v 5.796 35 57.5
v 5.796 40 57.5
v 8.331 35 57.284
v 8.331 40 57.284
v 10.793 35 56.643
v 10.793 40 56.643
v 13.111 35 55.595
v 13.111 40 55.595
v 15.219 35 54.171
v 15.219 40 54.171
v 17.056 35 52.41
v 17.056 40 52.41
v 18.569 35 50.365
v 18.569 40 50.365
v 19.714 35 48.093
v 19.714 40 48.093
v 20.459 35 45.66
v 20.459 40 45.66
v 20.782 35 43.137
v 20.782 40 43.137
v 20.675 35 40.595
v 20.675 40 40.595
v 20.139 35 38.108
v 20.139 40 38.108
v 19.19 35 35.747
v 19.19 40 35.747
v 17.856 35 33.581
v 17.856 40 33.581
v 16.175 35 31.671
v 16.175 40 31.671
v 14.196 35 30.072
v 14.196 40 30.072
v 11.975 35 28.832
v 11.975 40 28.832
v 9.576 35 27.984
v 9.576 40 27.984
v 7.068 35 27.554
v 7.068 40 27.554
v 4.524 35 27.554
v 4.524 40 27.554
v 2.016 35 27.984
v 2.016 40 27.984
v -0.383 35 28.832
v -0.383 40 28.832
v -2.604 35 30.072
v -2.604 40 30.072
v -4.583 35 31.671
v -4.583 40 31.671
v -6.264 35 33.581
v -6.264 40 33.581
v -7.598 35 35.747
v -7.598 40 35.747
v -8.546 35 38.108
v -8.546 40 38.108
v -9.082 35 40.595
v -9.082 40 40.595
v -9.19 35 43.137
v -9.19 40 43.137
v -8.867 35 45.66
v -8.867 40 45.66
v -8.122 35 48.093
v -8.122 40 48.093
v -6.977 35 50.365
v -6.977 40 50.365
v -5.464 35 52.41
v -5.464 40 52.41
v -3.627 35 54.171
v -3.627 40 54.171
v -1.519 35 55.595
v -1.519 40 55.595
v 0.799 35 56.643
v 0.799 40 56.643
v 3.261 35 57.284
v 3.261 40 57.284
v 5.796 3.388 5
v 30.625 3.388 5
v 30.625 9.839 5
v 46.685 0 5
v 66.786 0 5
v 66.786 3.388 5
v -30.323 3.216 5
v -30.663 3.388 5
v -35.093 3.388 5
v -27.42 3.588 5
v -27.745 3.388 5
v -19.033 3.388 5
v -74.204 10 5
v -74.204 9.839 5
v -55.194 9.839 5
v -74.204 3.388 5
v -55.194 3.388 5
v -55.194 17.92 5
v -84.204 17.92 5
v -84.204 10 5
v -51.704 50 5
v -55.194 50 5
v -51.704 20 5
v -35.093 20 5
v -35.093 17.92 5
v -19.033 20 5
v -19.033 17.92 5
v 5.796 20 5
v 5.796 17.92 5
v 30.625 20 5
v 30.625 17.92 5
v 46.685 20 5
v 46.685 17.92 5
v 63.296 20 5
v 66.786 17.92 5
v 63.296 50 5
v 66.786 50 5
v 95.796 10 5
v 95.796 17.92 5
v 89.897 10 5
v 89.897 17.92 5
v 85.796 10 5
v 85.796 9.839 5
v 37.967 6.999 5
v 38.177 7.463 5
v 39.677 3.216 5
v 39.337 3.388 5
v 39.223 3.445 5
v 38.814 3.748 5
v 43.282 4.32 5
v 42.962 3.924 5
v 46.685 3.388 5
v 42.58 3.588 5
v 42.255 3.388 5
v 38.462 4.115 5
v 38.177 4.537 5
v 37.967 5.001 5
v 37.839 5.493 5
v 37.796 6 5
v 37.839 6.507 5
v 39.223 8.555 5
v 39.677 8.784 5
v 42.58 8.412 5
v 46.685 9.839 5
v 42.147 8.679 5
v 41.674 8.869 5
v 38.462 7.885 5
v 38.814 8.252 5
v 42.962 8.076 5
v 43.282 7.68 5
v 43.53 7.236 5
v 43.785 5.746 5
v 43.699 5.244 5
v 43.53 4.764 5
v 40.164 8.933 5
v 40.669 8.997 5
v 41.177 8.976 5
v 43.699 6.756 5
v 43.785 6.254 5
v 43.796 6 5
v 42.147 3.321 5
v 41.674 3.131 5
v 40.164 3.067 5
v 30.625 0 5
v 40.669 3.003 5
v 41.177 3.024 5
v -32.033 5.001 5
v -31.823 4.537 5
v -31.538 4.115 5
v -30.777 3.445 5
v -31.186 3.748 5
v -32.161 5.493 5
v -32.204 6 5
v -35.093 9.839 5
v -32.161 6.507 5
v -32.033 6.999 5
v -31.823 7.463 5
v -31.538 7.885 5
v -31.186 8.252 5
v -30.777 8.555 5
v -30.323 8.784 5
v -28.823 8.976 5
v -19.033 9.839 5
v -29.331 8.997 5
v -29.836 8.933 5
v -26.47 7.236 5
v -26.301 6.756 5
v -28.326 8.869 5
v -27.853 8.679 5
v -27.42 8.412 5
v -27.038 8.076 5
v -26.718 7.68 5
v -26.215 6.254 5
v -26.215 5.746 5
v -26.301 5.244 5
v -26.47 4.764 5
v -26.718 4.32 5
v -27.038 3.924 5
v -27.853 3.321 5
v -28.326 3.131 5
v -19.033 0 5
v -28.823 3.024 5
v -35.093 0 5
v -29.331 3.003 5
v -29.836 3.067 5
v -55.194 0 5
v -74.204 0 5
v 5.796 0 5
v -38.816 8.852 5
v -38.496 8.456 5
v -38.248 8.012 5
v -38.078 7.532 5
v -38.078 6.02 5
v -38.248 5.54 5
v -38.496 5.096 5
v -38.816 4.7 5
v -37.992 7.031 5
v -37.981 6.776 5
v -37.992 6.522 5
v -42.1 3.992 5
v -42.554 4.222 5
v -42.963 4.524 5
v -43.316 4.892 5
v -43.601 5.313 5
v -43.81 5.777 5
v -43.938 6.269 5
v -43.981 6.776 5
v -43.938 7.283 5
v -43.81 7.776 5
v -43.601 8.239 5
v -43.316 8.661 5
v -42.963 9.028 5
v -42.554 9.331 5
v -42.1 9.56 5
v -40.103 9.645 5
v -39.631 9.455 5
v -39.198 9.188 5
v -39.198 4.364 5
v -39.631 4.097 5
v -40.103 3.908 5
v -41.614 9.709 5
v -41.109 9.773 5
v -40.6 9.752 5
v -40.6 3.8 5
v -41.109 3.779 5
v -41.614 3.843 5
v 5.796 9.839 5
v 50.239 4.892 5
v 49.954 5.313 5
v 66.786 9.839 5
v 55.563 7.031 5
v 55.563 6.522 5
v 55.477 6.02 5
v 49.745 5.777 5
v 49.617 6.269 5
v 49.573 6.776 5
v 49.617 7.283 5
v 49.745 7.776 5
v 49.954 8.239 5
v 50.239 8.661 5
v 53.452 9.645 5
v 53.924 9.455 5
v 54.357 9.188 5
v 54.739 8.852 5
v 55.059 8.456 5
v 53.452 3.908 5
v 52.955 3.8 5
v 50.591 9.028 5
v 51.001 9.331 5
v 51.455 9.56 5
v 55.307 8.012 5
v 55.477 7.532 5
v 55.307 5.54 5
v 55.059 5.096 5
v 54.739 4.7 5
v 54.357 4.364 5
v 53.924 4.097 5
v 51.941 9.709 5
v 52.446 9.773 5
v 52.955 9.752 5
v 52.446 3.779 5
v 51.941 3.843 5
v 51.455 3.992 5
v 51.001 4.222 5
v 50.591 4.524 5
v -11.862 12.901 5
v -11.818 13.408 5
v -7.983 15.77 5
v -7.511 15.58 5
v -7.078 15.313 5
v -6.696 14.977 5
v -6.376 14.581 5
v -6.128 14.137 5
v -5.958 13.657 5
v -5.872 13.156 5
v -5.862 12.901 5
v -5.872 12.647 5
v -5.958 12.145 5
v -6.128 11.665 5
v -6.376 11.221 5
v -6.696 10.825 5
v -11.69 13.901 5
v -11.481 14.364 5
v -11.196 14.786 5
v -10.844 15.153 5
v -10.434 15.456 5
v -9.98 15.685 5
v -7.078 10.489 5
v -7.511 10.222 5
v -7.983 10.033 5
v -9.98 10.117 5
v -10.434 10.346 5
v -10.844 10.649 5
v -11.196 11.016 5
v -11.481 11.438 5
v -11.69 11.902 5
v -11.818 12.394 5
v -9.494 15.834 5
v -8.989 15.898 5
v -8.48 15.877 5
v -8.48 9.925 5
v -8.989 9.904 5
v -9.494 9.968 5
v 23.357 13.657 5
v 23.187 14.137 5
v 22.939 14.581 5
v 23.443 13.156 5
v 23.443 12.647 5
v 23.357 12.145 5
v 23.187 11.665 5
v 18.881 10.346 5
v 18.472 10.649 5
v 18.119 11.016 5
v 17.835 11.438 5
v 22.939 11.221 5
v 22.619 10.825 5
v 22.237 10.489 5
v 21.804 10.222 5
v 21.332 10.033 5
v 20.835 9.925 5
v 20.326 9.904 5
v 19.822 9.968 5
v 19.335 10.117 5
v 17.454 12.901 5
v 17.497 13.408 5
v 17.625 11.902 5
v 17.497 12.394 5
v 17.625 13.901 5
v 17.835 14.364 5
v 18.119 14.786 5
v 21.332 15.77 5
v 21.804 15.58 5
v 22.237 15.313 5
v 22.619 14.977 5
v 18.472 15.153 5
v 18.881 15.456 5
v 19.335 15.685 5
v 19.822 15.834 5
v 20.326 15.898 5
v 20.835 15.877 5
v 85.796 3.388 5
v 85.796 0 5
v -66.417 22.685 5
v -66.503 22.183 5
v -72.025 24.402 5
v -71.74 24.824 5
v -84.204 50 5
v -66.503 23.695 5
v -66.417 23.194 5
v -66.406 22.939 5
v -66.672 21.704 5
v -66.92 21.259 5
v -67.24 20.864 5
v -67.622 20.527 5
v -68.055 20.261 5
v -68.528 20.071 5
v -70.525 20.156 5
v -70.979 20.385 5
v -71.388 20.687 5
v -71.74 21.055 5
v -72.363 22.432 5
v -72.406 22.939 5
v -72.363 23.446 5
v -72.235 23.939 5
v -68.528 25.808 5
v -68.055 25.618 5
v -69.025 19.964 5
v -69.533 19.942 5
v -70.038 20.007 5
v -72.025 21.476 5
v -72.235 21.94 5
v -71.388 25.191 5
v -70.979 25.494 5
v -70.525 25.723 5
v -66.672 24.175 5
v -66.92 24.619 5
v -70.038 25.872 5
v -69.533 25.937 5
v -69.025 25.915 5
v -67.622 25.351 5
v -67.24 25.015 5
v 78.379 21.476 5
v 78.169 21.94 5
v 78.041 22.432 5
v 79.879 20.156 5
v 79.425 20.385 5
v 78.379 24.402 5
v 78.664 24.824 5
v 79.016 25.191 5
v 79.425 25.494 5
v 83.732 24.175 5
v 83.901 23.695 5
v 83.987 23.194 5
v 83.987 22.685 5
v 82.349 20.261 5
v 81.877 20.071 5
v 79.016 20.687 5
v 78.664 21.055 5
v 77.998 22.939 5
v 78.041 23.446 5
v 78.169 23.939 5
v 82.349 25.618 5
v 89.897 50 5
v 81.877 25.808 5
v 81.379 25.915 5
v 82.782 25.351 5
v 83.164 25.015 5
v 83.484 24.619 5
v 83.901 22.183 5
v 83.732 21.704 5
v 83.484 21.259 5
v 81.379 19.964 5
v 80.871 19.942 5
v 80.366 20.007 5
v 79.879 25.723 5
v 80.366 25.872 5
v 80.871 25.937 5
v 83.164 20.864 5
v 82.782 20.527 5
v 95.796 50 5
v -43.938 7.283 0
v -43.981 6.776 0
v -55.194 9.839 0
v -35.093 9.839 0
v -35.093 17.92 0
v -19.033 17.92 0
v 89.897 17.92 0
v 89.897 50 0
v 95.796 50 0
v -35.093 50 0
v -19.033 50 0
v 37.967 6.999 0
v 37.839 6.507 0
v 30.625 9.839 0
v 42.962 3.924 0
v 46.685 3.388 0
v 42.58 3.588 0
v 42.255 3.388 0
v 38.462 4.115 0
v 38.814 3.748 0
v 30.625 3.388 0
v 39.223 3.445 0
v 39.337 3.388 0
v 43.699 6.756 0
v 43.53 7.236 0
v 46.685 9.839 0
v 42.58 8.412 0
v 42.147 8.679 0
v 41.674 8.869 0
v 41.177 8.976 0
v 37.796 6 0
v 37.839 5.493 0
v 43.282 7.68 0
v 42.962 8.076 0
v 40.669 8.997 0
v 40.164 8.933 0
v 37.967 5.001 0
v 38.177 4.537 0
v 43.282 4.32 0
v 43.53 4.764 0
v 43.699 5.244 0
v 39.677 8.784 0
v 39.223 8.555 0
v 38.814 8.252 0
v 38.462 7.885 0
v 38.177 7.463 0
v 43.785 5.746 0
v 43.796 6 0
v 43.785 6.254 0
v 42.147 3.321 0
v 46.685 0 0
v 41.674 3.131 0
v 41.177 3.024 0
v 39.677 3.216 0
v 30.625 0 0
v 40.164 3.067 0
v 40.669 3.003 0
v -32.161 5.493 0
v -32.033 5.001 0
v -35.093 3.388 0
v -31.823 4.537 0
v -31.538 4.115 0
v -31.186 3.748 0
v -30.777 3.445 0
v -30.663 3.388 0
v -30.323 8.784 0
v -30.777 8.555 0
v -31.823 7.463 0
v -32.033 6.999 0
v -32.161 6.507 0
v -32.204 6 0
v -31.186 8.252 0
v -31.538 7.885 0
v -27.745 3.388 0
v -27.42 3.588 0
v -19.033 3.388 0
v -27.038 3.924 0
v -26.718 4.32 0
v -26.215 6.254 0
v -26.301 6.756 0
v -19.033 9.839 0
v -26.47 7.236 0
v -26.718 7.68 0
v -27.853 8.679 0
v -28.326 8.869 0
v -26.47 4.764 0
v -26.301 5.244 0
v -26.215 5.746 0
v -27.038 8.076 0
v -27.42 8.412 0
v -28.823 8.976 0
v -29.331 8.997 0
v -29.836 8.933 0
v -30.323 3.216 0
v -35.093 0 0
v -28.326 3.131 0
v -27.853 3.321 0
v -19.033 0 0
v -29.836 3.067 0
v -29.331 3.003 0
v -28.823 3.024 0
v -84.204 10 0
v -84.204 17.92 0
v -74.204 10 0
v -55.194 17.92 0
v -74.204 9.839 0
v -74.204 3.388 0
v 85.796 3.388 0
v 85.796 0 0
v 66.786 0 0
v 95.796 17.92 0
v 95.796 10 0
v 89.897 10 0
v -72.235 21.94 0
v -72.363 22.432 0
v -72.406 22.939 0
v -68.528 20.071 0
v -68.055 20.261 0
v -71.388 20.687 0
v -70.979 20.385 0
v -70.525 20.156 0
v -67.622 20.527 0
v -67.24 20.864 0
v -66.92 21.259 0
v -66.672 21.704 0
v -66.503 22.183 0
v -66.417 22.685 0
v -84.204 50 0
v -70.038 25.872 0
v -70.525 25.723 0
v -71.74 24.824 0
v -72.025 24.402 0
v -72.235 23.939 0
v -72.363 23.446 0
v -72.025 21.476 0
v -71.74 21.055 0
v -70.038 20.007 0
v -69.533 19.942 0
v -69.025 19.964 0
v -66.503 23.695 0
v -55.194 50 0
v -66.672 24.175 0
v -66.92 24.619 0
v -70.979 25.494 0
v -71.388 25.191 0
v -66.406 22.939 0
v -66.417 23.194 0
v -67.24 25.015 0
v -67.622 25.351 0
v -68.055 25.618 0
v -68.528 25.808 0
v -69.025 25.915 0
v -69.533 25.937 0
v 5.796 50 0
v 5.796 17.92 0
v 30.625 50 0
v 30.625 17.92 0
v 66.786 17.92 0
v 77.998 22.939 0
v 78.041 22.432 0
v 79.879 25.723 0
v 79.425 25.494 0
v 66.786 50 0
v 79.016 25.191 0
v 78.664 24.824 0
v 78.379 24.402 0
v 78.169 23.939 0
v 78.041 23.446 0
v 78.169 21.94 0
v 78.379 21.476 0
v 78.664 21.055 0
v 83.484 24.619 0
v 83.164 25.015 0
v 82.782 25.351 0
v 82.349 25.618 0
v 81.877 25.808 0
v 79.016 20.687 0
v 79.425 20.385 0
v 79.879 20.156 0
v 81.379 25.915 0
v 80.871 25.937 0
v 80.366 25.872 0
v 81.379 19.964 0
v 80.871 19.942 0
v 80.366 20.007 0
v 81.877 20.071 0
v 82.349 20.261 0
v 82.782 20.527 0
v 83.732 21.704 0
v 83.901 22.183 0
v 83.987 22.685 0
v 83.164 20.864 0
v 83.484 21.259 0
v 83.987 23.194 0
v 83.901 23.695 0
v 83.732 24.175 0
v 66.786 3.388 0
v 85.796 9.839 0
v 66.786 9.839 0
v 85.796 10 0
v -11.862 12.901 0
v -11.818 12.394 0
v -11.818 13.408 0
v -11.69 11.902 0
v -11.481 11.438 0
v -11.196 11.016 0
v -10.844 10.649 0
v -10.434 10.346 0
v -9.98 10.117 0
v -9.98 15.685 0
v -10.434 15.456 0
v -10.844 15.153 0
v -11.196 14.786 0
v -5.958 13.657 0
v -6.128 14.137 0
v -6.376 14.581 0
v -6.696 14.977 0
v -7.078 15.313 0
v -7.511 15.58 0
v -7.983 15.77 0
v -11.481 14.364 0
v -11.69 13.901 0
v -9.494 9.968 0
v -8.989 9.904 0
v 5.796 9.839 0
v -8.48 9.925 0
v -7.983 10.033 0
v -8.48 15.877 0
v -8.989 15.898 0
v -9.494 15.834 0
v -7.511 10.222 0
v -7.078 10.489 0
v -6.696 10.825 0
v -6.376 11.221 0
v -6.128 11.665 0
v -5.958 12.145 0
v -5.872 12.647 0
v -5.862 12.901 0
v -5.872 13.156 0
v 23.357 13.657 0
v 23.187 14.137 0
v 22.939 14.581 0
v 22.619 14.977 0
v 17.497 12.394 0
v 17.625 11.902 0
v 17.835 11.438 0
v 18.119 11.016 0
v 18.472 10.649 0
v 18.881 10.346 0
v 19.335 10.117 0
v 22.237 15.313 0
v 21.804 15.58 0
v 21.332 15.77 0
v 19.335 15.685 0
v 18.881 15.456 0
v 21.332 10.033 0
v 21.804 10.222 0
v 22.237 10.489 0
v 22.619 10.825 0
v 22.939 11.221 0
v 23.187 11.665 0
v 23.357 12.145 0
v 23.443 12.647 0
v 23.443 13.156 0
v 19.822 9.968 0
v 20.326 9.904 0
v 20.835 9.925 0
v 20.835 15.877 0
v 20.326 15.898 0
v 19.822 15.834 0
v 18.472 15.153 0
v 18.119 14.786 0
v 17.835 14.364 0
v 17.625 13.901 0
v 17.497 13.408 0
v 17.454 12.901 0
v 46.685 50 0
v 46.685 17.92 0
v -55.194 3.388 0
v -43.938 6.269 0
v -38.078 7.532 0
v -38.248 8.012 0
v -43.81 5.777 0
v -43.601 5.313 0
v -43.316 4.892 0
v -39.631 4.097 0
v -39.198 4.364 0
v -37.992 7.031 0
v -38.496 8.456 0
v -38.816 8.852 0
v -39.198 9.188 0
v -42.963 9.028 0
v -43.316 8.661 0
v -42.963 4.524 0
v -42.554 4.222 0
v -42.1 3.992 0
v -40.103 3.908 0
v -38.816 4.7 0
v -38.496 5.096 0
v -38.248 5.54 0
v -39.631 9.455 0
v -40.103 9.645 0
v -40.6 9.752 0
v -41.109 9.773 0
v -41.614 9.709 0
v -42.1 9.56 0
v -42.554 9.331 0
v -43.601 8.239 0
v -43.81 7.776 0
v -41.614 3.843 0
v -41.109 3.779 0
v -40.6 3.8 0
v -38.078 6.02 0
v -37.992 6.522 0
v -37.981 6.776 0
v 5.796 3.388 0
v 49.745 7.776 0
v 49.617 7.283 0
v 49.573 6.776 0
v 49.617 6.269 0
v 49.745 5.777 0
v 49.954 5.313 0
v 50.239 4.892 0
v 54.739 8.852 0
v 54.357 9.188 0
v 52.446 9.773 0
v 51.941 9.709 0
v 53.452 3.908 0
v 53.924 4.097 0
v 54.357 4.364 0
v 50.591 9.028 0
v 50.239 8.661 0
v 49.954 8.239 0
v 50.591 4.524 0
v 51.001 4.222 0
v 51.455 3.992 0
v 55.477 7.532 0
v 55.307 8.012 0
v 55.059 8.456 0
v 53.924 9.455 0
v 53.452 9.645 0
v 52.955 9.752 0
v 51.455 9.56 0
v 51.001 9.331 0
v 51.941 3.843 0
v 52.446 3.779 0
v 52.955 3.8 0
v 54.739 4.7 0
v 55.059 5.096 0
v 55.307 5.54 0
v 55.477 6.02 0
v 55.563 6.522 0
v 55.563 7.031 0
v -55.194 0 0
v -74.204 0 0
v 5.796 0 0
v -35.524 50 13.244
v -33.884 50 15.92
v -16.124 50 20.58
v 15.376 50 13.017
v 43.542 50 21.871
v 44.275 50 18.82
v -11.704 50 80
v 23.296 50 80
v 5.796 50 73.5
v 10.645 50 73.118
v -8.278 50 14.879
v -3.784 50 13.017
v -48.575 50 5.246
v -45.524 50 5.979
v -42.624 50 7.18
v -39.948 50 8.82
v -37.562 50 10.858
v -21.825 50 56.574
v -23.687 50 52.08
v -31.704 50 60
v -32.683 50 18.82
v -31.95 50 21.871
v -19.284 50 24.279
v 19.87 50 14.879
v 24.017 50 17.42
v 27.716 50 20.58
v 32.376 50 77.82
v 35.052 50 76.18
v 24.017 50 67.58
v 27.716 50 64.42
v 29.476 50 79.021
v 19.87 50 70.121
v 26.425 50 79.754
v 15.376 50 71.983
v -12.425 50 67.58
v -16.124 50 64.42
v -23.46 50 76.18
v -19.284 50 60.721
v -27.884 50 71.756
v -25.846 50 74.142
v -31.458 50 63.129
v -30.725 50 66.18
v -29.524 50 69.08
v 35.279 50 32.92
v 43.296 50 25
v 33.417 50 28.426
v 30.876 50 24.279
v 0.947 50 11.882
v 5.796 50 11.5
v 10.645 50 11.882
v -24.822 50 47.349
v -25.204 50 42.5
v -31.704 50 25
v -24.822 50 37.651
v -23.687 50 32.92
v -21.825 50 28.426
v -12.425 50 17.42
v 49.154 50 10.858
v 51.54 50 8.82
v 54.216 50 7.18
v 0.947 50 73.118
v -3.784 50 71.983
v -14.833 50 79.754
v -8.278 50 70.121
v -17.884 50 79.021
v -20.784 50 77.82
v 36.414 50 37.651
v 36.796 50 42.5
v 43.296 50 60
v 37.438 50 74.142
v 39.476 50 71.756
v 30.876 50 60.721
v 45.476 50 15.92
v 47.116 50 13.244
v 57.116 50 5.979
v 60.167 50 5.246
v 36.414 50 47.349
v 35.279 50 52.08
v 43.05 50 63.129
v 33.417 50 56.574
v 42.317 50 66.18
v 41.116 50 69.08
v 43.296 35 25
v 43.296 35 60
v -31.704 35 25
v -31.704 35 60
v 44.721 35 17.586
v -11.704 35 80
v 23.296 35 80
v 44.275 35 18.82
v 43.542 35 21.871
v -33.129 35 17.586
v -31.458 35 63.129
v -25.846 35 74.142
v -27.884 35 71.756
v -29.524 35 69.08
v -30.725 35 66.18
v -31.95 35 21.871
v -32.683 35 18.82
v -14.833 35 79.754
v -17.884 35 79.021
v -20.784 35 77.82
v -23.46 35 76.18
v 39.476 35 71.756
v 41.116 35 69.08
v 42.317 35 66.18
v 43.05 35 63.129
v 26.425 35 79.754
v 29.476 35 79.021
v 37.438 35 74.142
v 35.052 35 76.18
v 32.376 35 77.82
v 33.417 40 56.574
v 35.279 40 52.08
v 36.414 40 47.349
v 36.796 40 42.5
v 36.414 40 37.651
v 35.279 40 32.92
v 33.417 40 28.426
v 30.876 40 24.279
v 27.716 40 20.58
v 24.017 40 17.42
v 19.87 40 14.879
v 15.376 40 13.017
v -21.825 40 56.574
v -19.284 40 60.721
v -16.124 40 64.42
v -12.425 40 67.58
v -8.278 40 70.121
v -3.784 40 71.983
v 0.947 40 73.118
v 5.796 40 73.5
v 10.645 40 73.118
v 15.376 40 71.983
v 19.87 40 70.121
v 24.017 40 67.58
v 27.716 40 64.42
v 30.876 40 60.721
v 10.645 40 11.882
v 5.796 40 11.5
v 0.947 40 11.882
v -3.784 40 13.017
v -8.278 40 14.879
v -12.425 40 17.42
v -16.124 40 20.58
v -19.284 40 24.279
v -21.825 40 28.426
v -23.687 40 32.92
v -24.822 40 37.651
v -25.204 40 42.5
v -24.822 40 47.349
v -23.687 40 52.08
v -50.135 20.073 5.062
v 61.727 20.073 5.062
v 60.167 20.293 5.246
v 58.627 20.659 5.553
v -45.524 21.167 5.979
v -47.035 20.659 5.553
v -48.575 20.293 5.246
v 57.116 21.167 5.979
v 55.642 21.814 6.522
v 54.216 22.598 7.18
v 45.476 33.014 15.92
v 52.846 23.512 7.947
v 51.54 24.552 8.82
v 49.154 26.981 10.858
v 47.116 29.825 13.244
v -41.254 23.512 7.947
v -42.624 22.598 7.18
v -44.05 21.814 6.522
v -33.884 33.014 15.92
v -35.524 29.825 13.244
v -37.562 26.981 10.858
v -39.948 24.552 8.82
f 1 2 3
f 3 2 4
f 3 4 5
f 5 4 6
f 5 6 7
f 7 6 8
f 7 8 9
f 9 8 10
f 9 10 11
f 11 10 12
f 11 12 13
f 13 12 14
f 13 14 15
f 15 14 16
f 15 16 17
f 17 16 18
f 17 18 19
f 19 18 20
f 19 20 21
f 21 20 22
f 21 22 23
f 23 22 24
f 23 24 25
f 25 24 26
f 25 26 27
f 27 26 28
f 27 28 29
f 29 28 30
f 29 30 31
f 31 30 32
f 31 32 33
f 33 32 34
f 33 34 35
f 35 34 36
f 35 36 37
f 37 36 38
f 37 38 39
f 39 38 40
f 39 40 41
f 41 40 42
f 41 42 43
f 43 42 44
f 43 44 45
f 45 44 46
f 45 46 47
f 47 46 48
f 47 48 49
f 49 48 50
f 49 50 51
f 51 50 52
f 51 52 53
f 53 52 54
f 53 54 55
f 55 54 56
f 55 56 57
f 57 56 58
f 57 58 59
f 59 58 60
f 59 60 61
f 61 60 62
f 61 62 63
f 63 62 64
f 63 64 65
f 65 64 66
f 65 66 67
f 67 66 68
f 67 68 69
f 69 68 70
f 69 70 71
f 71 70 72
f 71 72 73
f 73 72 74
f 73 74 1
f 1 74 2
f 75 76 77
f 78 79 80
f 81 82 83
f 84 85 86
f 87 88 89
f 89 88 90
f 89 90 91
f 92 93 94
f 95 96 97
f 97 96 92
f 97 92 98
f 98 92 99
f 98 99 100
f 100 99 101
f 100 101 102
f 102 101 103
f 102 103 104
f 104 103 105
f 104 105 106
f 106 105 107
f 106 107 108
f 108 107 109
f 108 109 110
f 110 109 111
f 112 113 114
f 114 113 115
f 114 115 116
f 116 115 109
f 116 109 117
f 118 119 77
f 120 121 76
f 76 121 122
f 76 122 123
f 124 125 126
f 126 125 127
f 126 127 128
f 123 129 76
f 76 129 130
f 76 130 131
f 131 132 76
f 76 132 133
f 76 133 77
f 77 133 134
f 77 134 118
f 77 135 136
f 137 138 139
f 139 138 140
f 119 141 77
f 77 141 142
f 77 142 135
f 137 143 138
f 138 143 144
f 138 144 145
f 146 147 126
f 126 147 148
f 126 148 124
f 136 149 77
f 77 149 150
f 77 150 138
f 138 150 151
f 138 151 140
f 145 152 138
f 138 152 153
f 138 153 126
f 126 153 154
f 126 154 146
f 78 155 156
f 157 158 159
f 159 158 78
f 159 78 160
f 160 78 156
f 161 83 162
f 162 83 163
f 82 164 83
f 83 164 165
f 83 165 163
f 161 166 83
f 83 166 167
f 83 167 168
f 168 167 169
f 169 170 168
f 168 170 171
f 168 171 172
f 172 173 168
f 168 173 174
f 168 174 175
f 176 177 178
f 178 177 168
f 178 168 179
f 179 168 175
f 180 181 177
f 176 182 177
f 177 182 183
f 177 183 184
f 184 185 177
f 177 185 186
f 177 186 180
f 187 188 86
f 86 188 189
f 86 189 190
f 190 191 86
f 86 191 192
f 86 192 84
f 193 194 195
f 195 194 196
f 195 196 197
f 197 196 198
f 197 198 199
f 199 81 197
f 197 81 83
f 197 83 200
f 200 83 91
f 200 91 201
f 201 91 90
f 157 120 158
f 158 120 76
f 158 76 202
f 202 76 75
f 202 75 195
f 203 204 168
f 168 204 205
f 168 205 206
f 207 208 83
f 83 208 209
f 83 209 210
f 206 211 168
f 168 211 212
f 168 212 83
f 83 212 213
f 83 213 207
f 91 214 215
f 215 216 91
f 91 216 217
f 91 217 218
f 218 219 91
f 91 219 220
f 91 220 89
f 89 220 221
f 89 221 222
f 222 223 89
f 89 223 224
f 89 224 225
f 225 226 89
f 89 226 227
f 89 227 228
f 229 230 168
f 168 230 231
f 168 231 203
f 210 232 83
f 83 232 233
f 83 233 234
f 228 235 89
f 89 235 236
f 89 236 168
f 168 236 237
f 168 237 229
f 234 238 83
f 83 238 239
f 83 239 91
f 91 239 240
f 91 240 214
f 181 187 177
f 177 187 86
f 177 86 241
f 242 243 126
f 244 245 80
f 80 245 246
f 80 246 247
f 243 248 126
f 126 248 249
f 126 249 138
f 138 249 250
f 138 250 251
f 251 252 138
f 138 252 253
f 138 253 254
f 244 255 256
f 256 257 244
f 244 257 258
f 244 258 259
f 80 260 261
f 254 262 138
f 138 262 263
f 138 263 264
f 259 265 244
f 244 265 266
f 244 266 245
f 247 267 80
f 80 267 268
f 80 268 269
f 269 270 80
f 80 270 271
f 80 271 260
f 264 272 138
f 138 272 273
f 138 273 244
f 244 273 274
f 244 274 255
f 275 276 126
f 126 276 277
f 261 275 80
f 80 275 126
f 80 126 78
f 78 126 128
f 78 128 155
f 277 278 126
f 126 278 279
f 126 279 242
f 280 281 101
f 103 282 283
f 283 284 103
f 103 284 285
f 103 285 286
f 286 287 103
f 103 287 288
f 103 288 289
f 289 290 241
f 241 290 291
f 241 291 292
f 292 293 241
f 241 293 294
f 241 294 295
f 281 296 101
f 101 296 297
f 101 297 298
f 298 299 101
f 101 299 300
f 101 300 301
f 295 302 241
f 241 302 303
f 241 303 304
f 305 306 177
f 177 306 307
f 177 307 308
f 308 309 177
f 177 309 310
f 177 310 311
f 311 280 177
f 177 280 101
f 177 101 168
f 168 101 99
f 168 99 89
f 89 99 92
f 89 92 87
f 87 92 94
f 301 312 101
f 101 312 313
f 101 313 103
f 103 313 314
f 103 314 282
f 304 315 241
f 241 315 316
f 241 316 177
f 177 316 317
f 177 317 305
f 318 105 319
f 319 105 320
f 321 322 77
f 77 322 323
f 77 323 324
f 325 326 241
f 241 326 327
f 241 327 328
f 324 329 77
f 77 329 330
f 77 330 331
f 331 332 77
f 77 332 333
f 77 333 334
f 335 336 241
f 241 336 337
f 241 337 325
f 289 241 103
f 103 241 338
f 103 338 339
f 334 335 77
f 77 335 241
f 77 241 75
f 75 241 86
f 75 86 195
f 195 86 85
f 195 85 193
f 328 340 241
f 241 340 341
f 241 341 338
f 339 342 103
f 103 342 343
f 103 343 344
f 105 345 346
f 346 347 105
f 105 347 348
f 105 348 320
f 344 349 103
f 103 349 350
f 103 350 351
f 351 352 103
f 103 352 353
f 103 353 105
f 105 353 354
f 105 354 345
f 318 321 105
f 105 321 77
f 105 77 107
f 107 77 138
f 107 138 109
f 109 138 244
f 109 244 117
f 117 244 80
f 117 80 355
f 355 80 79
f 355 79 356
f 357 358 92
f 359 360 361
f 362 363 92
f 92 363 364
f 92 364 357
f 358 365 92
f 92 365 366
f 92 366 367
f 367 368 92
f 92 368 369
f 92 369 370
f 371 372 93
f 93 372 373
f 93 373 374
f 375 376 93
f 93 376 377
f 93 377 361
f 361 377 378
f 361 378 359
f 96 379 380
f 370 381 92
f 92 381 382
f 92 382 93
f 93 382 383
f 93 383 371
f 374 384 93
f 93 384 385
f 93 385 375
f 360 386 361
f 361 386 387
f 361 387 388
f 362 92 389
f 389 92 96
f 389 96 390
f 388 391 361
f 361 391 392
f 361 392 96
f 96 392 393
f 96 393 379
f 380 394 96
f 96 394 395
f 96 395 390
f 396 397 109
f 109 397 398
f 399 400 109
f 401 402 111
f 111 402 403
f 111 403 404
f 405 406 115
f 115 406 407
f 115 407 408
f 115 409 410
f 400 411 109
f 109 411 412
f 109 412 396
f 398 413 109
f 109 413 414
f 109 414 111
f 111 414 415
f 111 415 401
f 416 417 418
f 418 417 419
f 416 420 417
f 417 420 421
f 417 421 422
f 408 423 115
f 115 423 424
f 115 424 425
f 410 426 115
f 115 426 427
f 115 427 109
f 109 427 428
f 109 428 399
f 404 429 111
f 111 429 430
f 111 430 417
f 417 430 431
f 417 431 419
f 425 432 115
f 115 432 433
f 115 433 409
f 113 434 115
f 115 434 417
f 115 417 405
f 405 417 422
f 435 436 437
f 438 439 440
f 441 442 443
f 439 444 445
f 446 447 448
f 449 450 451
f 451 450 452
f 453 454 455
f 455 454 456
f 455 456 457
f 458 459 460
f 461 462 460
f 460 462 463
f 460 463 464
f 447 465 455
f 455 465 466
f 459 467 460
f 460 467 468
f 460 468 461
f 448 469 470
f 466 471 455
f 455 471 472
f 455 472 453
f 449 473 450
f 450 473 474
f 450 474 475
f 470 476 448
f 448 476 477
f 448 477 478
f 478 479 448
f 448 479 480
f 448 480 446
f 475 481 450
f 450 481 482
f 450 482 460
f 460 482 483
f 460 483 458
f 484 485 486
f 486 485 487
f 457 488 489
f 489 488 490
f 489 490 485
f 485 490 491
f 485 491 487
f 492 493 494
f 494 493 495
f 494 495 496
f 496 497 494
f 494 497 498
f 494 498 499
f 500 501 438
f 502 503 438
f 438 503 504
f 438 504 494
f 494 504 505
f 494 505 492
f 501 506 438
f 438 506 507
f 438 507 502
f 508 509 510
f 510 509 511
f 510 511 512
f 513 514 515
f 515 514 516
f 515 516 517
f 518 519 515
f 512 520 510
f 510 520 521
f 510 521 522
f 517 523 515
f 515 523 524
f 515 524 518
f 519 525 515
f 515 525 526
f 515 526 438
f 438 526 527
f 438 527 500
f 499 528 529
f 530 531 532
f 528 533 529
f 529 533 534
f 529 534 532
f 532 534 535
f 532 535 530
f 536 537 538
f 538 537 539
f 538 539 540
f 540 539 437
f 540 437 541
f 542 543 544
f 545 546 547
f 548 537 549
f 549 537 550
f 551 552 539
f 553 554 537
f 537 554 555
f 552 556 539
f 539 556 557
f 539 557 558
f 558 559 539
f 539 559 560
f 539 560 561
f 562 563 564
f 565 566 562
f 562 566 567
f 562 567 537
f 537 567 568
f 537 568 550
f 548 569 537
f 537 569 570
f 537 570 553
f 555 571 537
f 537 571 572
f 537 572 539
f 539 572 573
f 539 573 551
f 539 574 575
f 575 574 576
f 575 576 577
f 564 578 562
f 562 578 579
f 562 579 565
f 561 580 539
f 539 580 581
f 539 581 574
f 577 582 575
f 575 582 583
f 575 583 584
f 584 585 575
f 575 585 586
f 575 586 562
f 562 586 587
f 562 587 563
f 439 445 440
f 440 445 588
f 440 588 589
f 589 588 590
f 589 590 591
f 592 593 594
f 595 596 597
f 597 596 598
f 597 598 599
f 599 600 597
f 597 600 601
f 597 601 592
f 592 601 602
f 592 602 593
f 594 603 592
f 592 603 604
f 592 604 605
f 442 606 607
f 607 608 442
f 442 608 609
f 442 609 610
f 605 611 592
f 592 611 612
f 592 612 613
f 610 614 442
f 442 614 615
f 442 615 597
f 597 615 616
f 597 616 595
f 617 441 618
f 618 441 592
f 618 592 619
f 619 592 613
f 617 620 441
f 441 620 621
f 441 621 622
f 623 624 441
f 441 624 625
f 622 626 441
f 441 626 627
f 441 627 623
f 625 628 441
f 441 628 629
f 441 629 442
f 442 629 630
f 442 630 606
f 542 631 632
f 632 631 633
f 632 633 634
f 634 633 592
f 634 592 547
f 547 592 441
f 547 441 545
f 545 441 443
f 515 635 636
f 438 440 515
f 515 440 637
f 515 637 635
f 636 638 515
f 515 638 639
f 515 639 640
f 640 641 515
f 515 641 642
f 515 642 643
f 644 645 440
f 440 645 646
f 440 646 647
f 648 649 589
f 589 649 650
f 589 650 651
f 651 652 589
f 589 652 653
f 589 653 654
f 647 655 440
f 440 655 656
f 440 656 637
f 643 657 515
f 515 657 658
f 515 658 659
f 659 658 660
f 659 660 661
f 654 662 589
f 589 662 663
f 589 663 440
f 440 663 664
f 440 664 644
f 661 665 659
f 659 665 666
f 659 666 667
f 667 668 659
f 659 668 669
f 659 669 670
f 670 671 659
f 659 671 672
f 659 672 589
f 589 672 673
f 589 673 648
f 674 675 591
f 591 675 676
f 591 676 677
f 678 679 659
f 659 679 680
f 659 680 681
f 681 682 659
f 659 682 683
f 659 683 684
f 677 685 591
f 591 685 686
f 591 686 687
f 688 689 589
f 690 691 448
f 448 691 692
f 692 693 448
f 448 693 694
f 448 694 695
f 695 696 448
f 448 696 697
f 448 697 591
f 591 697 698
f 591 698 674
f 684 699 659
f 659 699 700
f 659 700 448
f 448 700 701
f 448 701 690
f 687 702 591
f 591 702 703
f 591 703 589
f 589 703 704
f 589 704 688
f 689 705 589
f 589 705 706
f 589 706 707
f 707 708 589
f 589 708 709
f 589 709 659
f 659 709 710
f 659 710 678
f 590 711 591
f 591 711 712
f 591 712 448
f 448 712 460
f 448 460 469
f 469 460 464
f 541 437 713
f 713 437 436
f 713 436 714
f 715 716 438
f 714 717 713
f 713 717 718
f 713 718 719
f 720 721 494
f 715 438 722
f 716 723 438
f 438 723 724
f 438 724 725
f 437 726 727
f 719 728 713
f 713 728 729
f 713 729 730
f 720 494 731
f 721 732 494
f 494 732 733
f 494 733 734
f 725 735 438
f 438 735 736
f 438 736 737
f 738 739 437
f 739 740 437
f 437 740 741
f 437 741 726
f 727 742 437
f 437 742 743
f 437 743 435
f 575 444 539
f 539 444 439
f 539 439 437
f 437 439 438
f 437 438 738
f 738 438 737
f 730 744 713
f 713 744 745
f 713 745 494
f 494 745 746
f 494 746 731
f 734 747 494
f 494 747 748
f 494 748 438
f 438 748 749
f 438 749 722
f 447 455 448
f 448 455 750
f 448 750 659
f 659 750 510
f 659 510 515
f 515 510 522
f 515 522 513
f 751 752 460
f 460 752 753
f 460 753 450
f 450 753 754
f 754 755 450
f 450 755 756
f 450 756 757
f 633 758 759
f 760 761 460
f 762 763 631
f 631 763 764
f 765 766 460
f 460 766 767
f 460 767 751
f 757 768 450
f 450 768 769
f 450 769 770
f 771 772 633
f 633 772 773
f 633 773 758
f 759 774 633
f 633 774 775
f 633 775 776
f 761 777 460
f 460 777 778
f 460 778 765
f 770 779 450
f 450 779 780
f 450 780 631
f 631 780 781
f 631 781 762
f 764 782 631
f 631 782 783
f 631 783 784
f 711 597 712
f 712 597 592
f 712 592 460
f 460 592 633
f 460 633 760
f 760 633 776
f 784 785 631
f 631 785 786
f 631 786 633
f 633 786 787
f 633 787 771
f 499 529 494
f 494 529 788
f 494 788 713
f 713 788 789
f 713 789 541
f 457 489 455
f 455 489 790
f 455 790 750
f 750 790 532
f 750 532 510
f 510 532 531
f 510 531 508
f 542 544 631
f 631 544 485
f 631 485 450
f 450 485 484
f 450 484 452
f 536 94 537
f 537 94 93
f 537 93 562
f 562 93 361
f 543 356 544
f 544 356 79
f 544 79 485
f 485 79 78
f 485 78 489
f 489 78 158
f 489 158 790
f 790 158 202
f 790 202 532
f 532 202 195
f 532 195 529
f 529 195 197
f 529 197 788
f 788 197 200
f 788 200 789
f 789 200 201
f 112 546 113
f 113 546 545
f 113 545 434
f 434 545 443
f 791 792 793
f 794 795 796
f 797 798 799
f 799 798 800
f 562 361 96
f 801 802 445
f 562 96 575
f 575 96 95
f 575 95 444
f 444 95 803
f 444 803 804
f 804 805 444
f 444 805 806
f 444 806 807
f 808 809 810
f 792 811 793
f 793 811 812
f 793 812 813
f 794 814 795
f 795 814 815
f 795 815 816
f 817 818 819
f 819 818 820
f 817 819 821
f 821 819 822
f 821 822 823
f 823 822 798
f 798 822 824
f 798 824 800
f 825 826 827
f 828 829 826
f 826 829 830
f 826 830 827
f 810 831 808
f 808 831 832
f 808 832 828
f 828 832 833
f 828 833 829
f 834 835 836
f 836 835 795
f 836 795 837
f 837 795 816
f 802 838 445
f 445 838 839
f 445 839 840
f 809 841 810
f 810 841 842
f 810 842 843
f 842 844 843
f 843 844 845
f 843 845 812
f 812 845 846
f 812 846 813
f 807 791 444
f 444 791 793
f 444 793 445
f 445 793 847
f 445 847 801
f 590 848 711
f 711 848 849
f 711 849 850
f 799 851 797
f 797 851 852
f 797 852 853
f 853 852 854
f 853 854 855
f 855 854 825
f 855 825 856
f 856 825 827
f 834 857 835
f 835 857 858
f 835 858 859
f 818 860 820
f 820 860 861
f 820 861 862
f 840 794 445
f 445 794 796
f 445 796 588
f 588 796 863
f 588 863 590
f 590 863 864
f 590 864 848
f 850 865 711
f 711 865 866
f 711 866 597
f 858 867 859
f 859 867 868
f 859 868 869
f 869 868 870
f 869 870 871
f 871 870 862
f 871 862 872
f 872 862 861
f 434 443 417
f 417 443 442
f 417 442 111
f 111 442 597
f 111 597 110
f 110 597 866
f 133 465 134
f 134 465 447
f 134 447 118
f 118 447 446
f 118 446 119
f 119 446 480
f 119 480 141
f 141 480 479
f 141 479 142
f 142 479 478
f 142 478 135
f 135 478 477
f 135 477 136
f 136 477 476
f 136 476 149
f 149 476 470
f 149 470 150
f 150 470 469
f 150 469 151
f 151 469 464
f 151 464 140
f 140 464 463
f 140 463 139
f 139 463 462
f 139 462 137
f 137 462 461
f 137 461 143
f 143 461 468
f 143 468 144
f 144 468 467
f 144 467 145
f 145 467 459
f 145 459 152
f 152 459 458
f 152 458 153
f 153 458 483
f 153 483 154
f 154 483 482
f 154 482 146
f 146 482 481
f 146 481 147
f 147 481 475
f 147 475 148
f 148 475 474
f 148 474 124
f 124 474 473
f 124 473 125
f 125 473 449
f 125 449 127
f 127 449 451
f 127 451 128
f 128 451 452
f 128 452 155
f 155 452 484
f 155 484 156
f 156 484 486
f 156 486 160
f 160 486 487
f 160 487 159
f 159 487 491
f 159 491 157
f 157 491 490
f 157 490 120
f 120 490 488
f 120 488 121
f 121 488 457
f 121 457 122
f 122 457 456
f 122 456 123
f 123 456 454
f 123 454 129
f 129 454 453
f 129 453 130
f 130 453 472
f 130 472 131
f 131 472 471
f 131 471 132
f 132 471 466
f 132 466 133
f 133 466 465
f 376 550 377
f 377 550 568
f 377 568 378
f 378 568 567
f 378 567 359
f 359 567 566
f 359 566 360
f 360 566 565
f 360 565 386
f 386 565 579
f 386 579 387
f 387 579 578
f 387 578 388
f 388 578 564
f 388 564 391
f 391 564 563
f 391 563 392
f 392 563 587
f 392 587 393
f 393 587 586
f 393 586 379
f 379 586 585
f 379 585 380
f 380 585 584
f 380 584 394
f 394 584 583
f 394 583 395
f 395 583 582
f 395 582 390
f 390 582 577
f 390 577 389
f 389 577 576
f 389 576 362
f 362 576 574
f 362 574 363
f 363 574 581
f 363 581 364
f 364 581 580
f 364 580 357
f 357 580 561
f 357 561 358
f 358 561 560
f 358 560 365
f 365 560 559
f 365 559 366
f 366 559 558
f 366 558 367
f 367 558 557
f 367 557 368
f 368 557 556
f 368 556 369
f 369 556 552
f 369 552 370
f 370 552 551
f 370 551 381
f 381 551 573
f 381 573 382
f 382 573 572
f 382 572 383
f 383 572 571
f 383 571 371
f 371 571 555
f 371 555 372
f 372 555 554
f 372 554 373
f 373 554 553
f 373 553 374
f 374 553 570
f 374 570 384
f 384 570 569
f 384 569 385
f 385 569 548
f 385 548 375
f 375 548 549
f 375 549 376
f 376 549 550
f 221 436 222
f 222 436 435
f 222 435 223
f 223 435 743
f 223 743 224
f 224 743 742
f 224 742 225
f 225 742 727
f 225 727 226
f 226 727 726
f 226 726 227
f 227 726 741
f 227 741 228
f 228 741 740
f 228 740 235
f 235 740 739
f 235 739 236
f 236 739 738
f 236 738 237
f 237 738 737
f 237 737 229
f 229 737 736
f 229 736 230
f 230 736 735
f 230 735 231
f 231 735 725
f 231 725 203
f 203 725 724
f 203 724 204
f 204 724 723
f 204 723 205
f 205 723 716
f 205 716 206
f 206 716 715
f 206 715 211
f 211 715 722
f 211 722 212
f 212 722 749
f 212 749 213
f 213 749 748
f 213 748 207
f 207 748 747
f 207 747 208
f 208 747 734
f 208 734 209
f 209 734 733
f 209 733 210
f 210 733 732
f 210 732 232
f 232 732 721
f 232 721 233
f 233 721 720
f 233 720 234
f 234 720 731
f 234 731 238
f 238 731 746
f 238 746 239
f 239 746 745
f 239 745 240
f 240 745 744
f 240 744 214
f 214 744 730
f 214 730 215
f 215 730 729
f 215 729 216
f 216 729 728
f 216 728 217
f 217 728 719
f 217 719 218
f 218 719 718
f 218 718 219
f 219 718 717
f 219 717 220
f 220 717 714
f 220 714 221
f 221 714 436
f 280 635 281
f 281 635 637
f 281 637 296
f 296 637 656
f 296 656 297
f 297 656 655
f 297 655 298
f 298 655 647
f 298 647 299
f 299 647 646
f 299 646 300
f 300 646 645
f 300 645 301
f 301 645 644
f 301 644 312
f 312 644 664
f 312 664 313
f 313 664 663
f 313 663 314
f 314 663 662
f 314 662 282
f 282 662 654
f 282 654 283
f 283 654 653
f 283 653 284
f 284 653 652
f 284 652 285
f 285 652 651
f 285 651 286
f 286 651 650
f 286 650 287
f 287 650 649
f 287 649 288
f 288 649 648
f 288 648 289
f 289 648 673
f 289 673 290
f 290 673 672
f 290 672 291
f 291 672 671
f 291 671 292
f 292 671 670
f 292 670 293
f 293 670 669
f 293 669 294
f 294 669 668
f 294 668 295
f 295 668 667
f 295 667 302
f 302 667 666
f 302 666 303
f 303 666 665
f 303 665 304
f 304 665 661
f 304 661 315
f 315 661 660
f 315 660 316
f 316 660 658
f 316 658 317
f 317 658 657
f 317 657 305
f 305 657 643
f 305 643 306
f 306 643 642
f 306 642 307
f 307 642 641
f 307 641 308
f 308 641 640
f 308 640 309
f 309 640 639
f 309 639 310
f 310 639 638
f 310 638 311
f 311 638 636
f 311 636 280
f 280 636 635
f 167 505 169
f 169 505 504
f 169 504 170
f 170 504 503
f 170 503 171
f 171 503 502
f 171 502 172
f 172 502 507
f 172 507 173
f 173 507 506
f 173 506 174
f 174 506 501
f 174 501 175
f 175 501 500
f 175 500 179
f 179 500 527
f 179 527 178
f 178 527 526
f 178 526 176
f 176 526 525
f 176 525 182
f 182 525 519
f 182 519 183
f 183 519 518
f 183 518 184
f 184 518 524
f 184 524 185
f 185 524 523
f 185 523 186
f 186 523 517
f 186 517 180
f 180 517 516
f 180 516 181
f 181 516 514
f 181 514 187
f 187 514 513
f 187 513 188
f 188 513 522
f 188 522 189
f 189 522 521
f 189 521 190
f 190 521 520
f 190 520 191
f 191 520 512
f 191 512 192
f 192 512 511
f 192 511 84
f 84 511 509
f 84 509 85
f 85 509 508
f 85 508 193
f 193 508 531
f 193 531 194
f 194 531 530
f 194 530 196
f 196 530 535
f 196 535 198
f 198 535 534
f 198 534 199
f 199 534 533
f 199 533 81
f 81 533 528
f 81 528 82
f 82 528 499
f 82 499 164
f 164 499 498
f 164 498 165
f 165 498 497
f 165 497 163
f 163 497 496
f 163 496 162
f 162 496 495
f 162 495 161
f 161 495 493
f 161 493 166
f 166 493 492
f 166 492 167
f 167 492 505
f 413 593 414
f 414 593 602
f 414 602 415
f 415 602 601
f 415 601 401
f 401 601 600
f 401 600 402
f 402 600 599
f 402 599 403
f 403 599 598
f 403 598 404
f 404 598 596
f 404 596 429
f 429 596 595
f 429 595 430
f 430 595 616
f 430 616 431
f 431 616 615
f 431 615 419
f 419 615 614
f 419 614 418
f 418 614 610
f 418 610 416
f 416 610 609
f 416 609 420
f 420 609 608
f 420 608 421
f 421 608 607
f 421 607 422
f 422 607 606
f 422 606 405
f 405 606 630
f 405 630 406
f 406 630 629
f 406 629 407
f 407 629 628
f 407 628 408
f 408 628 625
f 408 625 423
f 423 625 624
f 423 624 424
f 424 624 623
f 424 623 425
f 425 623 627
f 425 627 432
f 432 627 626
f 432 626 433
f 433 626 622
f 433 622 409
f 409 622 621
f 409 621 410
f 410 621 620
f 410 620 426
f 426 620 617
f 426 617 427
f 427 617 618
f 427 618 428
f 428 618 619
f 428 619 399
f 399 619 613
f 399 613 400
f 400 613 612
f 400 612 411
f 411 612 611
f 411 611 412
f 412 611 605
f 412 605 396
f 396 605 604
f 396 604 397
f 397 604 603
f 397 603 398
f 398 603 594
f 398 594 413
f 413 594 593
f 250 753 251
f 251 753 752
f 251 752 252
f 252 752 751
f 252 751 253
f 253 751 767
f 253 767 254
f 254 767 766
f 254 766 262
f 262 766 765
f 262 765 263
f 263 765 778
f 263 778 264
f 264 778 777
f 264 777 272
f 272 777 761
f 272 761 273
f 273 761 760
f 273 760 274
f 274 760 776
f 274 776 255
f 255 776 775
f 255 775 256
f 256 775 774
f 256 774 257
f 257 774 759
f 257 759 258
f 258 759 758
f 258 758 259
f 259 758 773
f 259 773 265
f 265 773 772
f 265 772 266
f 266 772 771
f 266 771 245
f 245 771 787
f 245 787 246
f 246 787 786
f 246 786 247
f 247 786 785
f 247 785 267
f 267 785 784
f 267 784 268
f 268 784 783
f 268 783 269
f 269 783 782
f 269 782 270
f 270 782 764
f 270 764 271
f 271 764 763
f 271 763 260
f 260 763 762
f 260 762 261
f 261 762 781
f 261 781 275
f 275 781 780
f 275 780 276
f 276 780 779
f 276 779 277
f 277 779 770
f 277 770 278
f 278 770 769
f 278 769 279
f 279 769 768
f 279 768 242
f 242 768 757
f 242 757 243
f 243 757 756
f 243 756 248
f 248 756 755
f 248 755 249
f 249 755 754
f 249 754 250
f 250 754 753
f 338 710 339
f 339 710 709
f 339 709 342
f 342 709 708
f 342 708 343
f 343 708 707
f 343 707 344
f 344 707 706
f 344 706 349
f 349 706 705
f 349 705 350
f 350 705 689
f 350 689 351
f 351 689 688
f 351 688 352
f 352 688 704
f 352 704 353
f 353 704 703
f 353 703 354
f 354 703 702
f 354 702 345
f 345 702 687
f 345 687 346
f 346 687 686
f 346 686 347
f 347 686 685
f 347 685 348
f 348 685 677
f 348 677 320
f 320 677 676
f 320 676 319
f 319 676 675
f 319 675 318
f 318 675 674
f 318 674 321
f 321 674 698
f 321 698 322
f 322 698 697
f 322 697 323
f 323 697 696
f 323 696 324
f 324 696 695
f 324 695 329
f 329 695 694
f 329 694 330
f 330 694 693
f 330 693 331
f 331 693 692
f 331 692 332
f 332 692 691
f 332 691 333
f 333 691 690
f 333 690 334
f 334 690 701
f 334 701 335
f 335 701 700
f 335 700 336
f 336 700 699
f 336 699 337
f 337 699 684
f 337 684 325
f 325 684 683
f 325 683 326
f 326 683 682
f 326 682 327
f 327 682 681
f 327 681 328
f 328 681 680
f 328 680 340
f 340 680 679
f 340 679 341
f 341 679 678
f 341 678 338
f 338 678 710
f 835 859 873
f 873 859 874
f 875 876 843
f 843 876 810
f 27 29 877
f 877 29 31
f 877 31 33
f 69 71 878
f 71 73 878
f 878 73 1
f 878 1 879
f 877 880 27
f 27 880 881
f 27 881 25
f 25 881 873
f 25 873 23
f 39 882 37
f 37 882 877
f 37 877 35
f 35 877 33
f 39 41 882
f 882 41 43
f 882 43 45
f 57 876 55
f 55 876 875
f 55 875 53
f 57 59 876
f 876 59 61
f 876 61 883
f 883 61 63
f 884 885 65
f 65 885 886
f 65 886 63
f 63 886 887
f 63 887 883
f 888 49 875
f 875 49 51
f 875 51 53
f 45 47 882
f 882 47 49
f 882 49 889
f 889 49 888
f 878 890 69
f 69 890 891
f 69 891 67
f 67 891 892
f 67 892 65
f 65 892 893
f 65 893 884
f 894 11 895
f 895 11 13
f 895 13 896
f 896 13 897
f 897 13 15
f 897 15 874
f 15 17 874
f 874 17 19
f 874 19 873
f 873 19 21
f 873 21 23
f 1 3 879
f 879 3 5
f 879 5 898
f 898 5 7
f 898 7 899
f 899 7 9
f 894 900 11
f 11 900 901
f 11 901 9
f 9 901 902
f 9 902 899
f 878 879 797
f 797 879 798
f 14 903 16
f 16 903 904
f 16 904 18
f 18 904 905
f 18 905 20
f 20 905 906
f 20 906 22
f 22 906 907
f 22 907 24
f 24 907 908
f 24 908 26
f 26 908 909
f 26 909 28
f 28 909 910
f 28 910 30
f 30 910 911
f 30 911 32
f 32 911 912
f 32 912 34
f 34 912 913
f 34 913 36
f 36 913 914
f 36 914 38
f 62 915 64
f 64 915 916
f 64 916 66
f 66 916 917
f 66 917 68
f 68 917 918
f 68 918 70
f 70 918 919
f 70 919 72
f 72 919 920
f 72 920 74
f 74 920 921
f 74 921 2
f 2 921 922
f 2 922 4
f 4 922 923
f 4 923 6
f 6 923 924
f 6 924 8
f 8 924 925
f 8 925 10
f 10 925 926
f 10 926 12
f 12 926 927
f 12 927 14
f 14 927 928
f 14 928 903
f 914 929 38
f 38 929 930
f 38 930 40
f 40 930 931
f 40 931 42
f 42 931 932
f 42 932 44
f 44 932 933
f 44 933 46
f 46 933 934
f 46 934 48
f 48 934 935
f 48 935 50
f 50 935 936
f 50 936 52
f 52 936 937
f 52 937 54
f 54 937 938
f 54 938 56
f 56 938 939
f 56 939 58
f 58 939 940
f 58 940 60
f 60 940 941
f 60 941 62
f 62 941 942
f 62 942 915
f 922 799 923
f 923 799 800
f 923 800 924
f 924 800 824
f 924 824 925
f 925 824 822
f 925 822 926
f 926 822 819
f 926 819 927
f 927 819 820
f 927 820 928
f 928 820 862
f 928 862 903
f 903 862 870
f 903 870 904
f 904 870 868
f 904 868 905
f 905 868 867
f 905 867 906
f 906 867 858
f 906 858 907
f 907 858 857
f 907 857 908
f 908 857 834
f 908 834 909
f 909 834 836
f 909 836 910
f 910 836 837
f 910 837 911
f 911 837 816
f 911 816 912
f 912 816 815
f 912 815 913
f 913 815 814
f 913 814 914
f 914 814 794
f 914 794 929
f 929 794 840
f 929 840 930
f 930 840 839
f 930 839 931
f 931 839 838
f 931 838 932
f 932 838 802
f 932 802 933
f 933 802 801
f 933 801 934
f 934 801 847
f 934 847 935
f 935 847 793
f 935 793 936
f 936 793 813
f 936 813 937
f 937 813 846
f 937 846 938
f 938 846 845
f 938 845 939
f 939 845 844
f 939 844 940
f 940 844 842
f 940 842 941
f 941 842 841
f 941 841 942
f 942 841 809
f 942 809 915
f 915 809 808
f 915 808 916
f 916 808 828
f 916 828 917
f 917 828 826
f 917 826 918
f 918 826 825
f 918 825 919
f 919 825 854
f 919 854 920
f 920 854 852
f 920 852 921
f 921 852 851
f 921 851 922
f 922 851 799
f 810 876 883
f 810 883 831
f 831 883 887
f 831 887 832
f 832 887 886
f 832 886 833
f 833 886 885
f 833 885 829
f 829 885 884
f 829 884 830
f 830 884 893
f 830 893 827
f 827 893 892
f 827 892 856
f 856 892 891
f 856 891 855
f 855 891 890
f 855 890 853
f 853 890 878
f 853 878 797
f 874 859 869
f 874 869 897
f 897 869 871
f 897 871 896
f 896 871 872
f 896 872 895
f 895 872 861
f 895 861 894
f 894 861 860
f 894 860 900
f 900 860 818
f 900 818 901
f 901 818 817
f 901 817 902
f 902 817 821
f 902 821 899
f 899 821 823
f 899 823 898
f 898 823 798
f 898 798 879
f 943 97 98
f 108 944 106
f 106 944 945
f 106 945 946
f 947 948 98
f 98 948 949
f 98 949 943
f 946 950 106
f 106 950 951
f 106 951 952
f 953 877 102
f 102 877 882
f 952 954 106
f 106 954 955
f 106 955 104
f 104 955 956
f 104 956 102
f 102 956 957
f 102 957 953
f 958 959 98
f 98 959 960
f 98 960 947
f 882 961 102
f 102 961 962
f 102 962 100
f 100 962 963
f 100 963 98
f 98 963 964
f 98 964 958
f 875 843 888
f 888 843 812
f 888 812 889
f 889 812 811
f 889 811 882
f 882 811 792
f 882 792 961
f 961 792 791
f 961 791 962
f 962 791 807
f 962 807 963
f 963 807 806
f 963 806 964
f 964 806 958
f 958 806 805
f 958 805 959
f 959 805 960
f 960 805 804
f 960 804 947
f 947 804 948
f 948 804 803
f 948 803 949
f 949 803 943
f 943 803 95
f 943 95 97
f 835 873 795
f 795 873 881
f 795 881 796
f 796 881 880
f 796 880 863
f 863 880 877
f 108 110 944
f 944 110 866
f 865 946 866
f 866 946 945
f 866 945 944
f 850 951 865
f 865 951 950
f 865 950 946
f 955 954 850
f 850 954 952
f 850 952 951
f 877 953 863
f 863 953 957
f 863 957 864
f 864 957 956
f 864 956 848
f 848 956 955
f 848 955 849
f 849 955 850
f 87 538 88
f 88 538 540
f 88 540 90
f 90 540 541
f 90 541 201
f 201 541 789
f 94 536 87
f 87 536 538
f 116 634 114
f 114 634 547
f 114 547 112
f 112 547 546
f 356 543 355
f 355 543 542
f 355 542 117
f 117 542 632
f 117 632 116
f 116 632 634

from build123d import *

# Parameters (mm, degrees)
ESQUISSE1_W             = 180
ESQUISSE1_H             = 50
ESQUISSE1_R             = 3
BOSS_EXTRU_1_DEPTH      = 5
ESQUISSE2_W             = 75
ESQUISSE2_H             = 15
BOSS_EXTRU_2_DEPTH      = 75
ESQUISSE3_R             = 15
ENL_V_MAT_EXTRU_1_DEPTH = 15
ESQUISSE4_R             = 31
ENL_V_MAT_EXTRU_2_DEPTH = 10
CONG_1_R                = 20
CHANFREIN1_SIZE         = 15
CHANFREIN1_SIZE2        = 12.586494468
CONG_2_R                = 20
ESQUISSE5_W             = 10
ESQUISSE5_H             = 10
ENL_V_MAT_EXTRU_3_DEPTH = 5


with BuildPart() as part:
    # Esquisse1 → Boss.-Extru.1 (new body)
    with BuildSketch(Plane.XY):
        with Locations((5.796013405, 25)):
            Rectangle(ESQUISSE1_W, ESQUISSE1_H)
        with Locations((40.796013405, 6)):
            Circle(ESQUISSE1_R, mode=Mode.SUBTRACT)
        with Locations((-69.406004871, 22.939397164)):
            Circle(ESQUISSE1_R, mode=Mode.SUBTRACT)
        with Locations((-40.981469067, 6.77616521)):
            Circle(ESQUISSE1_R, mode=Mode.SUBTRACT)
        with Locations((-8.861542866, 12.901085106)):
            Circle(ESQUISSE1_R, mode=Mode.SUBTRACT)
        with Locations(Location((-29.203986595, 6, 0), (0, 0, 180))):
            Circle(ESQUISSE1_R, mode=Mode.SUBTRACT)
        with Locations(Location((80.99803168, 22.939397164, 0), (0, 0, 180))):
            Circle(ESQUISSE1_R, mode=Mode.SUBTRACT)
        with Locations(Location((52.573495876, 6.77616521, 0), (0, 0, 180))):
            Circle(ESQUISSE1_R, mode=Mode.SUBTRACT)
        with Locations(Location((20.453569676, 12.901085106, 0), (0, 0, 180))):
            Circle(ESQUISSE1_R, mode=Mode.SUBTRACT)
    extrude(amount=BOSS_EXTRU_1_DEPTH)

    # Esquisse2 → Boss.-Extru.2 (add)
    with BuildSketch(Plane.XY.offset(5)):
        with Locations((5.796013405, 42.5)):
            Rectangle(ESQUISSE2_W, ESQUISSE2_H)
    extrude(amount=BOSS_EXTRU_2_DEPTH)

    # Esquisse3 → Enlèv. mat.-Extru.1 (cut)
    with BuildSketch(Plane(origin=(0, 50, 0), x_dir=(1, 0, 0), z_dir=(0, 1, 0))):
        with Locations(Location((5.796013405, -42.5, 0), (0, 0, 270))):
            Circle(ESQUISSE3_R)
    extrude(amount=-ENL_V_MAT_EXTRU_1_DEPTH, mode=Mode.SUBTRACT)

    # Esquisse4 → Enlèv. mat.-Extru.2 (cut)
    with BuildSketch(Plane(origin=(0, 50, 0), x_dir=(1, 0, 0), z_dir=(0, 1, 0))):
        with Locations(Location((5.796013405, -42.5, 0), (0, 0, 270))):
            Circle(ESQUISSE4_R)
    extrude(amount=-ENL_V_MAT_EXTRU_2_DEPTH, mode=Mode.SUBTRACT)

    # Congé1
    cong_1_edges = [part.edges().sort_by_distance(p)[0] for p in [
        (43.296013405, 42.5, 80),
        (-31.703986595, 42.5, 80),
    ]]
    fillet(cong_1_edges, radius=CONG_1_R)

    # Chanfrein1
    chanfrein1_edges = [part.edges().sort_by_distance(p)[0] for p in [
        (5.796013405, 35, 5),
    ]]
    chanfrein1_side = [part.faces().sort_by_distance(p)[0] for p in [
        (5.796013405, 22.805952806, 5),
    ]]
    chamfer(chanfrein1_edges, length=CHANFREIN1_SIZE, length2=CHANFREIN1_SIZE2, reference=chanfrein1_side[0])

    # Congé2
    # the kernel refuses this fillet: 20 mm, written as the material it adds along each edge
    with BuildSketch(Plane(origin=(-31.703986595, -30, 5), x_dir=(0, 0, 1), z_dir=(0, 1, 0))) as cong_2_piece_1_section:
        with BuildLine():
            CenterArc((CONG_2_R, -CONG_2_R), CONG_2_R, 90, 90)
            Line((0, -CONG_2_R), (0, 0))
            Line((0, 0), (CONG_2_R, 0))
        make_face()
    cong_2_piece_1 = extrude(amount=80, mode=Mode.PRIVATE)
    cong_2_piece_1 = split(cong_2_piece_1, bisect_by=Plane(origin=(-37.472324852, 26.525505275, 10.475549069), z_dir=(0, 0.6427876096865406, -0.766044443118977)), keep=Keep.TOP, mode=Mode.PRIVATE)
    cong_2_piece_1 = split(cong_2_piece_1, bisect_by=Plane(origin=(-37.472324852, 35, 7.522714945), z_dir=(0, -1, 0)), keep=Keep.TOP, mode=Mode.PRIVATE)
    add(cong_2_piece_1)
    with BuildSketch(Plane(origin=(-31.703986595, -30, 5), x_dir=(0, 0, 1), z_dir=(0, 1, 0))) as cong_2_piece_2_section:
        with BuildLine():
            CenterArc((CONG_2_R, -CONG_2_R), CONG_2_R, 90, 90)
            Line((0, -CONG_2_R), (0, 0))
            Line((0, 0), (CONG_2_R, 0))
        make_face()
    cong_2_piece_2 = extrude(amount=80, mode=Mode.PRIVATE)
    cong_2_piece_2 = split(cong_2_piece_2, bisect_by=Plane(origin=(-31.680860217, 38.546515029, 20.562373921), z_dir=(0, -0.6427876096865406, 0.766044443118977)), keep=Keep.TOP, mode=Mode.PRIVATE)
    cong_2_piece_2 = split(cong_2_piece_2, bisect_by=Plane(origin=(-31.680860217, 35, 21.798113742), z_dir=(0, 1, 0)), keep=Keep.TOP, mode=Mode.PRIVATE)
    add(cong_2_piece_2)
    with BuildSketch(Plane(origin=(-31.703986595, -30, 5), x_dir=(0, 0, 1), z_dir=(0, 1, 0))) as cong_2_piece_3_section:
        with BuildLine():
            CenterArc((CONG_2_R, -CONG_2_R), CONG_2_R, 90, 90)
            Line((0, -CONG_2_R), (0, 0))
            Line((0, 0), (CONG_2_R, 0))
        make_face()
    cong_2_piece_3 = extrude(amount=80, mode=Mode.PRIVATE)
    cong_2_piece_3 = split(cong_2_piece_3, bisect_by=Plane(origin=(-36.294325359, 35.39038505, 17.914066419), z_dir=(0, 0.6427876096865406, -0.766044443118977)), keep=Keep.TOP, mode=Mode.PRIVATE)
    cong_2_piece_3 = split(cong_2_piece_3, bisect_by=Plane(origin=(-36.294325359, 35, 9.359564784), z_dir=(0, 1, 0)), keep=Keep.TOP, mode=Mode.PRIVATE)
    add(cong_2_piece_3)
    with BuildSketch(Plane(origin=(43.296013405, -30, 5), x_dir=(0, 0, 1), z_dir=(0, 1, 0))) as cong_2_piece_4_section:
        with BuildLine():
            CenterArc((CONG_2_R, CONG_2_R), CONG_2_R, 180, 90)
            Line((0, CONG_2_R), (0, 0))
            Line((0, 0), (CONG_2_R, 0))
        make_face()
    cong_2_piece_4 = extrude(amount=80, mode=Mode.PRIVATE)
    cong_2_piece_4 = split(cong_2_piece_4, bisect_by=Plane(origin=(49.064351662, 35, 7.522714945), z_dir=(0, -1, 0)), keep=Keep.TOP, mode=Mode.PRIVATE)
    cong_2_piece_4 = split(cong_2_piece_4, bisect_by=Plane(origin=(49.064351662, 26.525505275, 10.475549069), z_dir=(0, 0.6427876096865406, -0.766044443118977)), keep=Keep.TOP, mode=Mode.PRIVATE)
    add(cong_2_piece_4)
    with BuildSketch(Plane(origin=(43.296013405, -30, 5), x_dir=(0, 0, 1), z_dir=(0, 1, 0))) as cong_2_piece_5_section:
        with BuildLine():
            CenterArc((CONG_2_R, CONG_2_R), CONG_2_R, 180, 90)
            Line((0, CONG_2_R), (0, 0))
            Line((0, 0), (CONG_2_R, 0))
        make_face()
    cong_2_piece_5 = extrude(amount=80, mode=Mode.PRIVATE)
    cong_2_piece_5 = split(cong_2_piece_5, bisect_by=Plane(origin=(43.272887026, 35, 21.798113742), z_dir=(0, 1, 0)), keep=Keep.TOP, mode=Mode.PRIVATE)
    cong_2_piece_5 = split(cong_2_piece_5, bisect_by=Plane(origin=(43.272887026, 38.546515029, 20.562373921), z_dir=(0, -0.6427876096865406, 0.766044443118977)), keep=Keep.TOP, mode=Mode.PRIVATE)
    add(cong_2_piece_5)
    with BuildSketch(Plane(origin=(43.296013405, -30, 5), x_dir=(0, 0, 1), z_dir=(0, 1, 0))) as cong_2_piece_6_section:
        with BuildLine():
            CenterArc((CONG_2_R, CONG_2_R), CONG_2_R, 180, 90)
            Line((0, CONG_2_R), (0, 0))
            Line((0, 0), (CONG_2_R, 0))
        make_face()
    cong_2_piece_6 = extrude(amount=80, mode=Mode.PRIVATE)
    cong_2_piece_6 = split(cong_2_piece_6, bisect_by=Plane(origin=(47.886352168, 35, 9.359564784), z_dir=(0, 1, 0)), keep=Keep.TOP, mode=Mode.PRIVATE)
    cong_2_piece_6 = split(cong_2_piece_6, bisect_by=Plane(origin=(47.886352168, 35.39038505, 17.914066419), z_dir=(0, 0.6427876096865406, -0.766044443118977)), keep=Keep.TOP, mode=Mode.PRIVATE)
    add(cong_2_piece_6)

    # Esquisse5 → Enlèv. mat.-Extru.3 (cut)
    with BuildSketch(Plane.XY.offset(5)):
        with Locations((-79.203986595, 5)):
            Rectangle(ESQUISSE5_W, ESQUISSE5_H)
        with Locations((90.796013405, 5)):
            Rectangle(ESQUISSE5_W, ESQUISSE5_H)
    extrude(amount=-ENL_V_MAT_EXTRU_3_DEPTH, mode=Mode.SUBTRACT)


solid = part.part
